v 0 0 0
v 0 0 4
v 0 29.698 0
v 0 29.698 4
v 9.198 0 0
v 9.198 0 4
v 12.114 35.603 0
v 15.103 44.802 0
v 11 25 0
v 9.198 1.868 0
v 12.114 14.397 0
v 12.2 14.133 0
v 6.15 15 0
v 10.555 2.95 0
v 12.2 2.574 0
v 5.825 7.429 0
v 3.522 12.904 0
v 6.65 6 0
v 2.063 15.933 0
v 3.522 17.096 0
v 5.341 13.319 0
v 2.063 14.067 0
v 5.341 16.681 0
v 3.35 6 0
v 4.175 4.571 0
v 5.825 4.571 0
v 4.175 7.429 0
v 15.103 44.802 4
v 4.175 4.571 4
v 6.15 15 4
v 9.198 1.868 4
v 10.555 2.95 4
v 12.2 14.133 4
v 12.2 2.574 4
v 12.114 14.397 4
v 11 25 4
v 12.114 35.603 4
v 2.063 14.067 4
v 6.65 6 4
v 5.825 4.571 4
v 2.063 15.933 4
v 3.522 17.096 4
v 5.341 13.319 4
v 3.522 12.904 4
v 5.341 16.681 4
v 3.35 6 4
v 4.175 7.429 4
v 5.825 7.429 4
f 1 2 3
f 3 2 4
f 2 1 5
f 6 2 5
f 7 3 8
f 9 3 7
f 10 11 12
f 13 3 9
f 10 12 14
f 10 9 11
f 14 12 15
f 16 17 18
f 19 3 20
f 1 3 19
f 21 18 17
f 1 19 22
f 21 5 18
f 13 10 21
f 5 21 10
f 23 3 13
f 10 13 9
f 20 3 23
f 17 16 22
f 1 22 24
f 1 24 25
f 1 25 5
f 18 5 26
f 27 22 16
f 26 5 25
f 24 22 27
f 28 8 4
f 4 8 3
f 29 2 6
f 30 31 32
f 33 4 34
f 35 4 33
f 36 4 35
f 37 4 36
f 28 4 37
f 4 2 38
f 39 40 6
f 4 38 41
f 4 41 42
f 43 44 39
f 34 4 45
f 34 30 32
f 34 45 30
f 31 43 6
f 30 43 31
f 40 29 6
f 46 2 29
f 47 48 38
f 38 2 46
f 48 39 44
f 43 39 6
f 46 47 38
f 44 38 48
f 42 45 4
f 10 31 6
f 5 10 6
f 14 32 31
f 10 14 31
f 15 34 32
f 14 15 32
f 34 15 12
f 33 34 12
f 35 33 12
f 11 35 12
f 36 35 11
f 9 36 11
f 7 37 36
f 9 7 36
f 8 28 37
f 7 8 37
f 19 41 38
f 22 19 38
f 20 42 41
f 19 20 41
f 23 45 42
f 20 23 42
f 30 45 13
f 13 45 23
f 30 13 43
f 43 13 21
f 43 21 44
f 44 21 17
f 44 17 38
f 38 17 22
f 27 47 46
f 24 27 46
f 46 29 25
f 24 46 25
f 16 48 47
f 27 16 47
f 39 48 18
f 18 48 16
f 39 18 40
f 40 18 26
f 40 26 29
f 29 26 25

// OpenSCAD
hole1 = 3.3;
hole2 = 4.3;

difference(){
	union(){
		cube(size=[12.2,42,4]);
		translate(v=[2,25,0]) rotate(a=-30,v=[0,0,1]) cube(size=[10,42,4]);
	
	}
	#translate(v=[62,25,0]) cylinder(r=102/2,h=4);

	translate(v=[11,0,0]) cylinder(r=2,h=4);
	translate(v=[11,1,0]) cylinder(r=2,h=4);
	
	translate(v=[5,6,0]) cylinder(r=hole1/2,h=4);
	translate(v=[4,15,0]) cylinder(r=hole2/2,h=4);

	#rotate(a=45,v=[0,0,1]) translate(v=[20,21,0]) cube(size=[50,10,4]);
}
